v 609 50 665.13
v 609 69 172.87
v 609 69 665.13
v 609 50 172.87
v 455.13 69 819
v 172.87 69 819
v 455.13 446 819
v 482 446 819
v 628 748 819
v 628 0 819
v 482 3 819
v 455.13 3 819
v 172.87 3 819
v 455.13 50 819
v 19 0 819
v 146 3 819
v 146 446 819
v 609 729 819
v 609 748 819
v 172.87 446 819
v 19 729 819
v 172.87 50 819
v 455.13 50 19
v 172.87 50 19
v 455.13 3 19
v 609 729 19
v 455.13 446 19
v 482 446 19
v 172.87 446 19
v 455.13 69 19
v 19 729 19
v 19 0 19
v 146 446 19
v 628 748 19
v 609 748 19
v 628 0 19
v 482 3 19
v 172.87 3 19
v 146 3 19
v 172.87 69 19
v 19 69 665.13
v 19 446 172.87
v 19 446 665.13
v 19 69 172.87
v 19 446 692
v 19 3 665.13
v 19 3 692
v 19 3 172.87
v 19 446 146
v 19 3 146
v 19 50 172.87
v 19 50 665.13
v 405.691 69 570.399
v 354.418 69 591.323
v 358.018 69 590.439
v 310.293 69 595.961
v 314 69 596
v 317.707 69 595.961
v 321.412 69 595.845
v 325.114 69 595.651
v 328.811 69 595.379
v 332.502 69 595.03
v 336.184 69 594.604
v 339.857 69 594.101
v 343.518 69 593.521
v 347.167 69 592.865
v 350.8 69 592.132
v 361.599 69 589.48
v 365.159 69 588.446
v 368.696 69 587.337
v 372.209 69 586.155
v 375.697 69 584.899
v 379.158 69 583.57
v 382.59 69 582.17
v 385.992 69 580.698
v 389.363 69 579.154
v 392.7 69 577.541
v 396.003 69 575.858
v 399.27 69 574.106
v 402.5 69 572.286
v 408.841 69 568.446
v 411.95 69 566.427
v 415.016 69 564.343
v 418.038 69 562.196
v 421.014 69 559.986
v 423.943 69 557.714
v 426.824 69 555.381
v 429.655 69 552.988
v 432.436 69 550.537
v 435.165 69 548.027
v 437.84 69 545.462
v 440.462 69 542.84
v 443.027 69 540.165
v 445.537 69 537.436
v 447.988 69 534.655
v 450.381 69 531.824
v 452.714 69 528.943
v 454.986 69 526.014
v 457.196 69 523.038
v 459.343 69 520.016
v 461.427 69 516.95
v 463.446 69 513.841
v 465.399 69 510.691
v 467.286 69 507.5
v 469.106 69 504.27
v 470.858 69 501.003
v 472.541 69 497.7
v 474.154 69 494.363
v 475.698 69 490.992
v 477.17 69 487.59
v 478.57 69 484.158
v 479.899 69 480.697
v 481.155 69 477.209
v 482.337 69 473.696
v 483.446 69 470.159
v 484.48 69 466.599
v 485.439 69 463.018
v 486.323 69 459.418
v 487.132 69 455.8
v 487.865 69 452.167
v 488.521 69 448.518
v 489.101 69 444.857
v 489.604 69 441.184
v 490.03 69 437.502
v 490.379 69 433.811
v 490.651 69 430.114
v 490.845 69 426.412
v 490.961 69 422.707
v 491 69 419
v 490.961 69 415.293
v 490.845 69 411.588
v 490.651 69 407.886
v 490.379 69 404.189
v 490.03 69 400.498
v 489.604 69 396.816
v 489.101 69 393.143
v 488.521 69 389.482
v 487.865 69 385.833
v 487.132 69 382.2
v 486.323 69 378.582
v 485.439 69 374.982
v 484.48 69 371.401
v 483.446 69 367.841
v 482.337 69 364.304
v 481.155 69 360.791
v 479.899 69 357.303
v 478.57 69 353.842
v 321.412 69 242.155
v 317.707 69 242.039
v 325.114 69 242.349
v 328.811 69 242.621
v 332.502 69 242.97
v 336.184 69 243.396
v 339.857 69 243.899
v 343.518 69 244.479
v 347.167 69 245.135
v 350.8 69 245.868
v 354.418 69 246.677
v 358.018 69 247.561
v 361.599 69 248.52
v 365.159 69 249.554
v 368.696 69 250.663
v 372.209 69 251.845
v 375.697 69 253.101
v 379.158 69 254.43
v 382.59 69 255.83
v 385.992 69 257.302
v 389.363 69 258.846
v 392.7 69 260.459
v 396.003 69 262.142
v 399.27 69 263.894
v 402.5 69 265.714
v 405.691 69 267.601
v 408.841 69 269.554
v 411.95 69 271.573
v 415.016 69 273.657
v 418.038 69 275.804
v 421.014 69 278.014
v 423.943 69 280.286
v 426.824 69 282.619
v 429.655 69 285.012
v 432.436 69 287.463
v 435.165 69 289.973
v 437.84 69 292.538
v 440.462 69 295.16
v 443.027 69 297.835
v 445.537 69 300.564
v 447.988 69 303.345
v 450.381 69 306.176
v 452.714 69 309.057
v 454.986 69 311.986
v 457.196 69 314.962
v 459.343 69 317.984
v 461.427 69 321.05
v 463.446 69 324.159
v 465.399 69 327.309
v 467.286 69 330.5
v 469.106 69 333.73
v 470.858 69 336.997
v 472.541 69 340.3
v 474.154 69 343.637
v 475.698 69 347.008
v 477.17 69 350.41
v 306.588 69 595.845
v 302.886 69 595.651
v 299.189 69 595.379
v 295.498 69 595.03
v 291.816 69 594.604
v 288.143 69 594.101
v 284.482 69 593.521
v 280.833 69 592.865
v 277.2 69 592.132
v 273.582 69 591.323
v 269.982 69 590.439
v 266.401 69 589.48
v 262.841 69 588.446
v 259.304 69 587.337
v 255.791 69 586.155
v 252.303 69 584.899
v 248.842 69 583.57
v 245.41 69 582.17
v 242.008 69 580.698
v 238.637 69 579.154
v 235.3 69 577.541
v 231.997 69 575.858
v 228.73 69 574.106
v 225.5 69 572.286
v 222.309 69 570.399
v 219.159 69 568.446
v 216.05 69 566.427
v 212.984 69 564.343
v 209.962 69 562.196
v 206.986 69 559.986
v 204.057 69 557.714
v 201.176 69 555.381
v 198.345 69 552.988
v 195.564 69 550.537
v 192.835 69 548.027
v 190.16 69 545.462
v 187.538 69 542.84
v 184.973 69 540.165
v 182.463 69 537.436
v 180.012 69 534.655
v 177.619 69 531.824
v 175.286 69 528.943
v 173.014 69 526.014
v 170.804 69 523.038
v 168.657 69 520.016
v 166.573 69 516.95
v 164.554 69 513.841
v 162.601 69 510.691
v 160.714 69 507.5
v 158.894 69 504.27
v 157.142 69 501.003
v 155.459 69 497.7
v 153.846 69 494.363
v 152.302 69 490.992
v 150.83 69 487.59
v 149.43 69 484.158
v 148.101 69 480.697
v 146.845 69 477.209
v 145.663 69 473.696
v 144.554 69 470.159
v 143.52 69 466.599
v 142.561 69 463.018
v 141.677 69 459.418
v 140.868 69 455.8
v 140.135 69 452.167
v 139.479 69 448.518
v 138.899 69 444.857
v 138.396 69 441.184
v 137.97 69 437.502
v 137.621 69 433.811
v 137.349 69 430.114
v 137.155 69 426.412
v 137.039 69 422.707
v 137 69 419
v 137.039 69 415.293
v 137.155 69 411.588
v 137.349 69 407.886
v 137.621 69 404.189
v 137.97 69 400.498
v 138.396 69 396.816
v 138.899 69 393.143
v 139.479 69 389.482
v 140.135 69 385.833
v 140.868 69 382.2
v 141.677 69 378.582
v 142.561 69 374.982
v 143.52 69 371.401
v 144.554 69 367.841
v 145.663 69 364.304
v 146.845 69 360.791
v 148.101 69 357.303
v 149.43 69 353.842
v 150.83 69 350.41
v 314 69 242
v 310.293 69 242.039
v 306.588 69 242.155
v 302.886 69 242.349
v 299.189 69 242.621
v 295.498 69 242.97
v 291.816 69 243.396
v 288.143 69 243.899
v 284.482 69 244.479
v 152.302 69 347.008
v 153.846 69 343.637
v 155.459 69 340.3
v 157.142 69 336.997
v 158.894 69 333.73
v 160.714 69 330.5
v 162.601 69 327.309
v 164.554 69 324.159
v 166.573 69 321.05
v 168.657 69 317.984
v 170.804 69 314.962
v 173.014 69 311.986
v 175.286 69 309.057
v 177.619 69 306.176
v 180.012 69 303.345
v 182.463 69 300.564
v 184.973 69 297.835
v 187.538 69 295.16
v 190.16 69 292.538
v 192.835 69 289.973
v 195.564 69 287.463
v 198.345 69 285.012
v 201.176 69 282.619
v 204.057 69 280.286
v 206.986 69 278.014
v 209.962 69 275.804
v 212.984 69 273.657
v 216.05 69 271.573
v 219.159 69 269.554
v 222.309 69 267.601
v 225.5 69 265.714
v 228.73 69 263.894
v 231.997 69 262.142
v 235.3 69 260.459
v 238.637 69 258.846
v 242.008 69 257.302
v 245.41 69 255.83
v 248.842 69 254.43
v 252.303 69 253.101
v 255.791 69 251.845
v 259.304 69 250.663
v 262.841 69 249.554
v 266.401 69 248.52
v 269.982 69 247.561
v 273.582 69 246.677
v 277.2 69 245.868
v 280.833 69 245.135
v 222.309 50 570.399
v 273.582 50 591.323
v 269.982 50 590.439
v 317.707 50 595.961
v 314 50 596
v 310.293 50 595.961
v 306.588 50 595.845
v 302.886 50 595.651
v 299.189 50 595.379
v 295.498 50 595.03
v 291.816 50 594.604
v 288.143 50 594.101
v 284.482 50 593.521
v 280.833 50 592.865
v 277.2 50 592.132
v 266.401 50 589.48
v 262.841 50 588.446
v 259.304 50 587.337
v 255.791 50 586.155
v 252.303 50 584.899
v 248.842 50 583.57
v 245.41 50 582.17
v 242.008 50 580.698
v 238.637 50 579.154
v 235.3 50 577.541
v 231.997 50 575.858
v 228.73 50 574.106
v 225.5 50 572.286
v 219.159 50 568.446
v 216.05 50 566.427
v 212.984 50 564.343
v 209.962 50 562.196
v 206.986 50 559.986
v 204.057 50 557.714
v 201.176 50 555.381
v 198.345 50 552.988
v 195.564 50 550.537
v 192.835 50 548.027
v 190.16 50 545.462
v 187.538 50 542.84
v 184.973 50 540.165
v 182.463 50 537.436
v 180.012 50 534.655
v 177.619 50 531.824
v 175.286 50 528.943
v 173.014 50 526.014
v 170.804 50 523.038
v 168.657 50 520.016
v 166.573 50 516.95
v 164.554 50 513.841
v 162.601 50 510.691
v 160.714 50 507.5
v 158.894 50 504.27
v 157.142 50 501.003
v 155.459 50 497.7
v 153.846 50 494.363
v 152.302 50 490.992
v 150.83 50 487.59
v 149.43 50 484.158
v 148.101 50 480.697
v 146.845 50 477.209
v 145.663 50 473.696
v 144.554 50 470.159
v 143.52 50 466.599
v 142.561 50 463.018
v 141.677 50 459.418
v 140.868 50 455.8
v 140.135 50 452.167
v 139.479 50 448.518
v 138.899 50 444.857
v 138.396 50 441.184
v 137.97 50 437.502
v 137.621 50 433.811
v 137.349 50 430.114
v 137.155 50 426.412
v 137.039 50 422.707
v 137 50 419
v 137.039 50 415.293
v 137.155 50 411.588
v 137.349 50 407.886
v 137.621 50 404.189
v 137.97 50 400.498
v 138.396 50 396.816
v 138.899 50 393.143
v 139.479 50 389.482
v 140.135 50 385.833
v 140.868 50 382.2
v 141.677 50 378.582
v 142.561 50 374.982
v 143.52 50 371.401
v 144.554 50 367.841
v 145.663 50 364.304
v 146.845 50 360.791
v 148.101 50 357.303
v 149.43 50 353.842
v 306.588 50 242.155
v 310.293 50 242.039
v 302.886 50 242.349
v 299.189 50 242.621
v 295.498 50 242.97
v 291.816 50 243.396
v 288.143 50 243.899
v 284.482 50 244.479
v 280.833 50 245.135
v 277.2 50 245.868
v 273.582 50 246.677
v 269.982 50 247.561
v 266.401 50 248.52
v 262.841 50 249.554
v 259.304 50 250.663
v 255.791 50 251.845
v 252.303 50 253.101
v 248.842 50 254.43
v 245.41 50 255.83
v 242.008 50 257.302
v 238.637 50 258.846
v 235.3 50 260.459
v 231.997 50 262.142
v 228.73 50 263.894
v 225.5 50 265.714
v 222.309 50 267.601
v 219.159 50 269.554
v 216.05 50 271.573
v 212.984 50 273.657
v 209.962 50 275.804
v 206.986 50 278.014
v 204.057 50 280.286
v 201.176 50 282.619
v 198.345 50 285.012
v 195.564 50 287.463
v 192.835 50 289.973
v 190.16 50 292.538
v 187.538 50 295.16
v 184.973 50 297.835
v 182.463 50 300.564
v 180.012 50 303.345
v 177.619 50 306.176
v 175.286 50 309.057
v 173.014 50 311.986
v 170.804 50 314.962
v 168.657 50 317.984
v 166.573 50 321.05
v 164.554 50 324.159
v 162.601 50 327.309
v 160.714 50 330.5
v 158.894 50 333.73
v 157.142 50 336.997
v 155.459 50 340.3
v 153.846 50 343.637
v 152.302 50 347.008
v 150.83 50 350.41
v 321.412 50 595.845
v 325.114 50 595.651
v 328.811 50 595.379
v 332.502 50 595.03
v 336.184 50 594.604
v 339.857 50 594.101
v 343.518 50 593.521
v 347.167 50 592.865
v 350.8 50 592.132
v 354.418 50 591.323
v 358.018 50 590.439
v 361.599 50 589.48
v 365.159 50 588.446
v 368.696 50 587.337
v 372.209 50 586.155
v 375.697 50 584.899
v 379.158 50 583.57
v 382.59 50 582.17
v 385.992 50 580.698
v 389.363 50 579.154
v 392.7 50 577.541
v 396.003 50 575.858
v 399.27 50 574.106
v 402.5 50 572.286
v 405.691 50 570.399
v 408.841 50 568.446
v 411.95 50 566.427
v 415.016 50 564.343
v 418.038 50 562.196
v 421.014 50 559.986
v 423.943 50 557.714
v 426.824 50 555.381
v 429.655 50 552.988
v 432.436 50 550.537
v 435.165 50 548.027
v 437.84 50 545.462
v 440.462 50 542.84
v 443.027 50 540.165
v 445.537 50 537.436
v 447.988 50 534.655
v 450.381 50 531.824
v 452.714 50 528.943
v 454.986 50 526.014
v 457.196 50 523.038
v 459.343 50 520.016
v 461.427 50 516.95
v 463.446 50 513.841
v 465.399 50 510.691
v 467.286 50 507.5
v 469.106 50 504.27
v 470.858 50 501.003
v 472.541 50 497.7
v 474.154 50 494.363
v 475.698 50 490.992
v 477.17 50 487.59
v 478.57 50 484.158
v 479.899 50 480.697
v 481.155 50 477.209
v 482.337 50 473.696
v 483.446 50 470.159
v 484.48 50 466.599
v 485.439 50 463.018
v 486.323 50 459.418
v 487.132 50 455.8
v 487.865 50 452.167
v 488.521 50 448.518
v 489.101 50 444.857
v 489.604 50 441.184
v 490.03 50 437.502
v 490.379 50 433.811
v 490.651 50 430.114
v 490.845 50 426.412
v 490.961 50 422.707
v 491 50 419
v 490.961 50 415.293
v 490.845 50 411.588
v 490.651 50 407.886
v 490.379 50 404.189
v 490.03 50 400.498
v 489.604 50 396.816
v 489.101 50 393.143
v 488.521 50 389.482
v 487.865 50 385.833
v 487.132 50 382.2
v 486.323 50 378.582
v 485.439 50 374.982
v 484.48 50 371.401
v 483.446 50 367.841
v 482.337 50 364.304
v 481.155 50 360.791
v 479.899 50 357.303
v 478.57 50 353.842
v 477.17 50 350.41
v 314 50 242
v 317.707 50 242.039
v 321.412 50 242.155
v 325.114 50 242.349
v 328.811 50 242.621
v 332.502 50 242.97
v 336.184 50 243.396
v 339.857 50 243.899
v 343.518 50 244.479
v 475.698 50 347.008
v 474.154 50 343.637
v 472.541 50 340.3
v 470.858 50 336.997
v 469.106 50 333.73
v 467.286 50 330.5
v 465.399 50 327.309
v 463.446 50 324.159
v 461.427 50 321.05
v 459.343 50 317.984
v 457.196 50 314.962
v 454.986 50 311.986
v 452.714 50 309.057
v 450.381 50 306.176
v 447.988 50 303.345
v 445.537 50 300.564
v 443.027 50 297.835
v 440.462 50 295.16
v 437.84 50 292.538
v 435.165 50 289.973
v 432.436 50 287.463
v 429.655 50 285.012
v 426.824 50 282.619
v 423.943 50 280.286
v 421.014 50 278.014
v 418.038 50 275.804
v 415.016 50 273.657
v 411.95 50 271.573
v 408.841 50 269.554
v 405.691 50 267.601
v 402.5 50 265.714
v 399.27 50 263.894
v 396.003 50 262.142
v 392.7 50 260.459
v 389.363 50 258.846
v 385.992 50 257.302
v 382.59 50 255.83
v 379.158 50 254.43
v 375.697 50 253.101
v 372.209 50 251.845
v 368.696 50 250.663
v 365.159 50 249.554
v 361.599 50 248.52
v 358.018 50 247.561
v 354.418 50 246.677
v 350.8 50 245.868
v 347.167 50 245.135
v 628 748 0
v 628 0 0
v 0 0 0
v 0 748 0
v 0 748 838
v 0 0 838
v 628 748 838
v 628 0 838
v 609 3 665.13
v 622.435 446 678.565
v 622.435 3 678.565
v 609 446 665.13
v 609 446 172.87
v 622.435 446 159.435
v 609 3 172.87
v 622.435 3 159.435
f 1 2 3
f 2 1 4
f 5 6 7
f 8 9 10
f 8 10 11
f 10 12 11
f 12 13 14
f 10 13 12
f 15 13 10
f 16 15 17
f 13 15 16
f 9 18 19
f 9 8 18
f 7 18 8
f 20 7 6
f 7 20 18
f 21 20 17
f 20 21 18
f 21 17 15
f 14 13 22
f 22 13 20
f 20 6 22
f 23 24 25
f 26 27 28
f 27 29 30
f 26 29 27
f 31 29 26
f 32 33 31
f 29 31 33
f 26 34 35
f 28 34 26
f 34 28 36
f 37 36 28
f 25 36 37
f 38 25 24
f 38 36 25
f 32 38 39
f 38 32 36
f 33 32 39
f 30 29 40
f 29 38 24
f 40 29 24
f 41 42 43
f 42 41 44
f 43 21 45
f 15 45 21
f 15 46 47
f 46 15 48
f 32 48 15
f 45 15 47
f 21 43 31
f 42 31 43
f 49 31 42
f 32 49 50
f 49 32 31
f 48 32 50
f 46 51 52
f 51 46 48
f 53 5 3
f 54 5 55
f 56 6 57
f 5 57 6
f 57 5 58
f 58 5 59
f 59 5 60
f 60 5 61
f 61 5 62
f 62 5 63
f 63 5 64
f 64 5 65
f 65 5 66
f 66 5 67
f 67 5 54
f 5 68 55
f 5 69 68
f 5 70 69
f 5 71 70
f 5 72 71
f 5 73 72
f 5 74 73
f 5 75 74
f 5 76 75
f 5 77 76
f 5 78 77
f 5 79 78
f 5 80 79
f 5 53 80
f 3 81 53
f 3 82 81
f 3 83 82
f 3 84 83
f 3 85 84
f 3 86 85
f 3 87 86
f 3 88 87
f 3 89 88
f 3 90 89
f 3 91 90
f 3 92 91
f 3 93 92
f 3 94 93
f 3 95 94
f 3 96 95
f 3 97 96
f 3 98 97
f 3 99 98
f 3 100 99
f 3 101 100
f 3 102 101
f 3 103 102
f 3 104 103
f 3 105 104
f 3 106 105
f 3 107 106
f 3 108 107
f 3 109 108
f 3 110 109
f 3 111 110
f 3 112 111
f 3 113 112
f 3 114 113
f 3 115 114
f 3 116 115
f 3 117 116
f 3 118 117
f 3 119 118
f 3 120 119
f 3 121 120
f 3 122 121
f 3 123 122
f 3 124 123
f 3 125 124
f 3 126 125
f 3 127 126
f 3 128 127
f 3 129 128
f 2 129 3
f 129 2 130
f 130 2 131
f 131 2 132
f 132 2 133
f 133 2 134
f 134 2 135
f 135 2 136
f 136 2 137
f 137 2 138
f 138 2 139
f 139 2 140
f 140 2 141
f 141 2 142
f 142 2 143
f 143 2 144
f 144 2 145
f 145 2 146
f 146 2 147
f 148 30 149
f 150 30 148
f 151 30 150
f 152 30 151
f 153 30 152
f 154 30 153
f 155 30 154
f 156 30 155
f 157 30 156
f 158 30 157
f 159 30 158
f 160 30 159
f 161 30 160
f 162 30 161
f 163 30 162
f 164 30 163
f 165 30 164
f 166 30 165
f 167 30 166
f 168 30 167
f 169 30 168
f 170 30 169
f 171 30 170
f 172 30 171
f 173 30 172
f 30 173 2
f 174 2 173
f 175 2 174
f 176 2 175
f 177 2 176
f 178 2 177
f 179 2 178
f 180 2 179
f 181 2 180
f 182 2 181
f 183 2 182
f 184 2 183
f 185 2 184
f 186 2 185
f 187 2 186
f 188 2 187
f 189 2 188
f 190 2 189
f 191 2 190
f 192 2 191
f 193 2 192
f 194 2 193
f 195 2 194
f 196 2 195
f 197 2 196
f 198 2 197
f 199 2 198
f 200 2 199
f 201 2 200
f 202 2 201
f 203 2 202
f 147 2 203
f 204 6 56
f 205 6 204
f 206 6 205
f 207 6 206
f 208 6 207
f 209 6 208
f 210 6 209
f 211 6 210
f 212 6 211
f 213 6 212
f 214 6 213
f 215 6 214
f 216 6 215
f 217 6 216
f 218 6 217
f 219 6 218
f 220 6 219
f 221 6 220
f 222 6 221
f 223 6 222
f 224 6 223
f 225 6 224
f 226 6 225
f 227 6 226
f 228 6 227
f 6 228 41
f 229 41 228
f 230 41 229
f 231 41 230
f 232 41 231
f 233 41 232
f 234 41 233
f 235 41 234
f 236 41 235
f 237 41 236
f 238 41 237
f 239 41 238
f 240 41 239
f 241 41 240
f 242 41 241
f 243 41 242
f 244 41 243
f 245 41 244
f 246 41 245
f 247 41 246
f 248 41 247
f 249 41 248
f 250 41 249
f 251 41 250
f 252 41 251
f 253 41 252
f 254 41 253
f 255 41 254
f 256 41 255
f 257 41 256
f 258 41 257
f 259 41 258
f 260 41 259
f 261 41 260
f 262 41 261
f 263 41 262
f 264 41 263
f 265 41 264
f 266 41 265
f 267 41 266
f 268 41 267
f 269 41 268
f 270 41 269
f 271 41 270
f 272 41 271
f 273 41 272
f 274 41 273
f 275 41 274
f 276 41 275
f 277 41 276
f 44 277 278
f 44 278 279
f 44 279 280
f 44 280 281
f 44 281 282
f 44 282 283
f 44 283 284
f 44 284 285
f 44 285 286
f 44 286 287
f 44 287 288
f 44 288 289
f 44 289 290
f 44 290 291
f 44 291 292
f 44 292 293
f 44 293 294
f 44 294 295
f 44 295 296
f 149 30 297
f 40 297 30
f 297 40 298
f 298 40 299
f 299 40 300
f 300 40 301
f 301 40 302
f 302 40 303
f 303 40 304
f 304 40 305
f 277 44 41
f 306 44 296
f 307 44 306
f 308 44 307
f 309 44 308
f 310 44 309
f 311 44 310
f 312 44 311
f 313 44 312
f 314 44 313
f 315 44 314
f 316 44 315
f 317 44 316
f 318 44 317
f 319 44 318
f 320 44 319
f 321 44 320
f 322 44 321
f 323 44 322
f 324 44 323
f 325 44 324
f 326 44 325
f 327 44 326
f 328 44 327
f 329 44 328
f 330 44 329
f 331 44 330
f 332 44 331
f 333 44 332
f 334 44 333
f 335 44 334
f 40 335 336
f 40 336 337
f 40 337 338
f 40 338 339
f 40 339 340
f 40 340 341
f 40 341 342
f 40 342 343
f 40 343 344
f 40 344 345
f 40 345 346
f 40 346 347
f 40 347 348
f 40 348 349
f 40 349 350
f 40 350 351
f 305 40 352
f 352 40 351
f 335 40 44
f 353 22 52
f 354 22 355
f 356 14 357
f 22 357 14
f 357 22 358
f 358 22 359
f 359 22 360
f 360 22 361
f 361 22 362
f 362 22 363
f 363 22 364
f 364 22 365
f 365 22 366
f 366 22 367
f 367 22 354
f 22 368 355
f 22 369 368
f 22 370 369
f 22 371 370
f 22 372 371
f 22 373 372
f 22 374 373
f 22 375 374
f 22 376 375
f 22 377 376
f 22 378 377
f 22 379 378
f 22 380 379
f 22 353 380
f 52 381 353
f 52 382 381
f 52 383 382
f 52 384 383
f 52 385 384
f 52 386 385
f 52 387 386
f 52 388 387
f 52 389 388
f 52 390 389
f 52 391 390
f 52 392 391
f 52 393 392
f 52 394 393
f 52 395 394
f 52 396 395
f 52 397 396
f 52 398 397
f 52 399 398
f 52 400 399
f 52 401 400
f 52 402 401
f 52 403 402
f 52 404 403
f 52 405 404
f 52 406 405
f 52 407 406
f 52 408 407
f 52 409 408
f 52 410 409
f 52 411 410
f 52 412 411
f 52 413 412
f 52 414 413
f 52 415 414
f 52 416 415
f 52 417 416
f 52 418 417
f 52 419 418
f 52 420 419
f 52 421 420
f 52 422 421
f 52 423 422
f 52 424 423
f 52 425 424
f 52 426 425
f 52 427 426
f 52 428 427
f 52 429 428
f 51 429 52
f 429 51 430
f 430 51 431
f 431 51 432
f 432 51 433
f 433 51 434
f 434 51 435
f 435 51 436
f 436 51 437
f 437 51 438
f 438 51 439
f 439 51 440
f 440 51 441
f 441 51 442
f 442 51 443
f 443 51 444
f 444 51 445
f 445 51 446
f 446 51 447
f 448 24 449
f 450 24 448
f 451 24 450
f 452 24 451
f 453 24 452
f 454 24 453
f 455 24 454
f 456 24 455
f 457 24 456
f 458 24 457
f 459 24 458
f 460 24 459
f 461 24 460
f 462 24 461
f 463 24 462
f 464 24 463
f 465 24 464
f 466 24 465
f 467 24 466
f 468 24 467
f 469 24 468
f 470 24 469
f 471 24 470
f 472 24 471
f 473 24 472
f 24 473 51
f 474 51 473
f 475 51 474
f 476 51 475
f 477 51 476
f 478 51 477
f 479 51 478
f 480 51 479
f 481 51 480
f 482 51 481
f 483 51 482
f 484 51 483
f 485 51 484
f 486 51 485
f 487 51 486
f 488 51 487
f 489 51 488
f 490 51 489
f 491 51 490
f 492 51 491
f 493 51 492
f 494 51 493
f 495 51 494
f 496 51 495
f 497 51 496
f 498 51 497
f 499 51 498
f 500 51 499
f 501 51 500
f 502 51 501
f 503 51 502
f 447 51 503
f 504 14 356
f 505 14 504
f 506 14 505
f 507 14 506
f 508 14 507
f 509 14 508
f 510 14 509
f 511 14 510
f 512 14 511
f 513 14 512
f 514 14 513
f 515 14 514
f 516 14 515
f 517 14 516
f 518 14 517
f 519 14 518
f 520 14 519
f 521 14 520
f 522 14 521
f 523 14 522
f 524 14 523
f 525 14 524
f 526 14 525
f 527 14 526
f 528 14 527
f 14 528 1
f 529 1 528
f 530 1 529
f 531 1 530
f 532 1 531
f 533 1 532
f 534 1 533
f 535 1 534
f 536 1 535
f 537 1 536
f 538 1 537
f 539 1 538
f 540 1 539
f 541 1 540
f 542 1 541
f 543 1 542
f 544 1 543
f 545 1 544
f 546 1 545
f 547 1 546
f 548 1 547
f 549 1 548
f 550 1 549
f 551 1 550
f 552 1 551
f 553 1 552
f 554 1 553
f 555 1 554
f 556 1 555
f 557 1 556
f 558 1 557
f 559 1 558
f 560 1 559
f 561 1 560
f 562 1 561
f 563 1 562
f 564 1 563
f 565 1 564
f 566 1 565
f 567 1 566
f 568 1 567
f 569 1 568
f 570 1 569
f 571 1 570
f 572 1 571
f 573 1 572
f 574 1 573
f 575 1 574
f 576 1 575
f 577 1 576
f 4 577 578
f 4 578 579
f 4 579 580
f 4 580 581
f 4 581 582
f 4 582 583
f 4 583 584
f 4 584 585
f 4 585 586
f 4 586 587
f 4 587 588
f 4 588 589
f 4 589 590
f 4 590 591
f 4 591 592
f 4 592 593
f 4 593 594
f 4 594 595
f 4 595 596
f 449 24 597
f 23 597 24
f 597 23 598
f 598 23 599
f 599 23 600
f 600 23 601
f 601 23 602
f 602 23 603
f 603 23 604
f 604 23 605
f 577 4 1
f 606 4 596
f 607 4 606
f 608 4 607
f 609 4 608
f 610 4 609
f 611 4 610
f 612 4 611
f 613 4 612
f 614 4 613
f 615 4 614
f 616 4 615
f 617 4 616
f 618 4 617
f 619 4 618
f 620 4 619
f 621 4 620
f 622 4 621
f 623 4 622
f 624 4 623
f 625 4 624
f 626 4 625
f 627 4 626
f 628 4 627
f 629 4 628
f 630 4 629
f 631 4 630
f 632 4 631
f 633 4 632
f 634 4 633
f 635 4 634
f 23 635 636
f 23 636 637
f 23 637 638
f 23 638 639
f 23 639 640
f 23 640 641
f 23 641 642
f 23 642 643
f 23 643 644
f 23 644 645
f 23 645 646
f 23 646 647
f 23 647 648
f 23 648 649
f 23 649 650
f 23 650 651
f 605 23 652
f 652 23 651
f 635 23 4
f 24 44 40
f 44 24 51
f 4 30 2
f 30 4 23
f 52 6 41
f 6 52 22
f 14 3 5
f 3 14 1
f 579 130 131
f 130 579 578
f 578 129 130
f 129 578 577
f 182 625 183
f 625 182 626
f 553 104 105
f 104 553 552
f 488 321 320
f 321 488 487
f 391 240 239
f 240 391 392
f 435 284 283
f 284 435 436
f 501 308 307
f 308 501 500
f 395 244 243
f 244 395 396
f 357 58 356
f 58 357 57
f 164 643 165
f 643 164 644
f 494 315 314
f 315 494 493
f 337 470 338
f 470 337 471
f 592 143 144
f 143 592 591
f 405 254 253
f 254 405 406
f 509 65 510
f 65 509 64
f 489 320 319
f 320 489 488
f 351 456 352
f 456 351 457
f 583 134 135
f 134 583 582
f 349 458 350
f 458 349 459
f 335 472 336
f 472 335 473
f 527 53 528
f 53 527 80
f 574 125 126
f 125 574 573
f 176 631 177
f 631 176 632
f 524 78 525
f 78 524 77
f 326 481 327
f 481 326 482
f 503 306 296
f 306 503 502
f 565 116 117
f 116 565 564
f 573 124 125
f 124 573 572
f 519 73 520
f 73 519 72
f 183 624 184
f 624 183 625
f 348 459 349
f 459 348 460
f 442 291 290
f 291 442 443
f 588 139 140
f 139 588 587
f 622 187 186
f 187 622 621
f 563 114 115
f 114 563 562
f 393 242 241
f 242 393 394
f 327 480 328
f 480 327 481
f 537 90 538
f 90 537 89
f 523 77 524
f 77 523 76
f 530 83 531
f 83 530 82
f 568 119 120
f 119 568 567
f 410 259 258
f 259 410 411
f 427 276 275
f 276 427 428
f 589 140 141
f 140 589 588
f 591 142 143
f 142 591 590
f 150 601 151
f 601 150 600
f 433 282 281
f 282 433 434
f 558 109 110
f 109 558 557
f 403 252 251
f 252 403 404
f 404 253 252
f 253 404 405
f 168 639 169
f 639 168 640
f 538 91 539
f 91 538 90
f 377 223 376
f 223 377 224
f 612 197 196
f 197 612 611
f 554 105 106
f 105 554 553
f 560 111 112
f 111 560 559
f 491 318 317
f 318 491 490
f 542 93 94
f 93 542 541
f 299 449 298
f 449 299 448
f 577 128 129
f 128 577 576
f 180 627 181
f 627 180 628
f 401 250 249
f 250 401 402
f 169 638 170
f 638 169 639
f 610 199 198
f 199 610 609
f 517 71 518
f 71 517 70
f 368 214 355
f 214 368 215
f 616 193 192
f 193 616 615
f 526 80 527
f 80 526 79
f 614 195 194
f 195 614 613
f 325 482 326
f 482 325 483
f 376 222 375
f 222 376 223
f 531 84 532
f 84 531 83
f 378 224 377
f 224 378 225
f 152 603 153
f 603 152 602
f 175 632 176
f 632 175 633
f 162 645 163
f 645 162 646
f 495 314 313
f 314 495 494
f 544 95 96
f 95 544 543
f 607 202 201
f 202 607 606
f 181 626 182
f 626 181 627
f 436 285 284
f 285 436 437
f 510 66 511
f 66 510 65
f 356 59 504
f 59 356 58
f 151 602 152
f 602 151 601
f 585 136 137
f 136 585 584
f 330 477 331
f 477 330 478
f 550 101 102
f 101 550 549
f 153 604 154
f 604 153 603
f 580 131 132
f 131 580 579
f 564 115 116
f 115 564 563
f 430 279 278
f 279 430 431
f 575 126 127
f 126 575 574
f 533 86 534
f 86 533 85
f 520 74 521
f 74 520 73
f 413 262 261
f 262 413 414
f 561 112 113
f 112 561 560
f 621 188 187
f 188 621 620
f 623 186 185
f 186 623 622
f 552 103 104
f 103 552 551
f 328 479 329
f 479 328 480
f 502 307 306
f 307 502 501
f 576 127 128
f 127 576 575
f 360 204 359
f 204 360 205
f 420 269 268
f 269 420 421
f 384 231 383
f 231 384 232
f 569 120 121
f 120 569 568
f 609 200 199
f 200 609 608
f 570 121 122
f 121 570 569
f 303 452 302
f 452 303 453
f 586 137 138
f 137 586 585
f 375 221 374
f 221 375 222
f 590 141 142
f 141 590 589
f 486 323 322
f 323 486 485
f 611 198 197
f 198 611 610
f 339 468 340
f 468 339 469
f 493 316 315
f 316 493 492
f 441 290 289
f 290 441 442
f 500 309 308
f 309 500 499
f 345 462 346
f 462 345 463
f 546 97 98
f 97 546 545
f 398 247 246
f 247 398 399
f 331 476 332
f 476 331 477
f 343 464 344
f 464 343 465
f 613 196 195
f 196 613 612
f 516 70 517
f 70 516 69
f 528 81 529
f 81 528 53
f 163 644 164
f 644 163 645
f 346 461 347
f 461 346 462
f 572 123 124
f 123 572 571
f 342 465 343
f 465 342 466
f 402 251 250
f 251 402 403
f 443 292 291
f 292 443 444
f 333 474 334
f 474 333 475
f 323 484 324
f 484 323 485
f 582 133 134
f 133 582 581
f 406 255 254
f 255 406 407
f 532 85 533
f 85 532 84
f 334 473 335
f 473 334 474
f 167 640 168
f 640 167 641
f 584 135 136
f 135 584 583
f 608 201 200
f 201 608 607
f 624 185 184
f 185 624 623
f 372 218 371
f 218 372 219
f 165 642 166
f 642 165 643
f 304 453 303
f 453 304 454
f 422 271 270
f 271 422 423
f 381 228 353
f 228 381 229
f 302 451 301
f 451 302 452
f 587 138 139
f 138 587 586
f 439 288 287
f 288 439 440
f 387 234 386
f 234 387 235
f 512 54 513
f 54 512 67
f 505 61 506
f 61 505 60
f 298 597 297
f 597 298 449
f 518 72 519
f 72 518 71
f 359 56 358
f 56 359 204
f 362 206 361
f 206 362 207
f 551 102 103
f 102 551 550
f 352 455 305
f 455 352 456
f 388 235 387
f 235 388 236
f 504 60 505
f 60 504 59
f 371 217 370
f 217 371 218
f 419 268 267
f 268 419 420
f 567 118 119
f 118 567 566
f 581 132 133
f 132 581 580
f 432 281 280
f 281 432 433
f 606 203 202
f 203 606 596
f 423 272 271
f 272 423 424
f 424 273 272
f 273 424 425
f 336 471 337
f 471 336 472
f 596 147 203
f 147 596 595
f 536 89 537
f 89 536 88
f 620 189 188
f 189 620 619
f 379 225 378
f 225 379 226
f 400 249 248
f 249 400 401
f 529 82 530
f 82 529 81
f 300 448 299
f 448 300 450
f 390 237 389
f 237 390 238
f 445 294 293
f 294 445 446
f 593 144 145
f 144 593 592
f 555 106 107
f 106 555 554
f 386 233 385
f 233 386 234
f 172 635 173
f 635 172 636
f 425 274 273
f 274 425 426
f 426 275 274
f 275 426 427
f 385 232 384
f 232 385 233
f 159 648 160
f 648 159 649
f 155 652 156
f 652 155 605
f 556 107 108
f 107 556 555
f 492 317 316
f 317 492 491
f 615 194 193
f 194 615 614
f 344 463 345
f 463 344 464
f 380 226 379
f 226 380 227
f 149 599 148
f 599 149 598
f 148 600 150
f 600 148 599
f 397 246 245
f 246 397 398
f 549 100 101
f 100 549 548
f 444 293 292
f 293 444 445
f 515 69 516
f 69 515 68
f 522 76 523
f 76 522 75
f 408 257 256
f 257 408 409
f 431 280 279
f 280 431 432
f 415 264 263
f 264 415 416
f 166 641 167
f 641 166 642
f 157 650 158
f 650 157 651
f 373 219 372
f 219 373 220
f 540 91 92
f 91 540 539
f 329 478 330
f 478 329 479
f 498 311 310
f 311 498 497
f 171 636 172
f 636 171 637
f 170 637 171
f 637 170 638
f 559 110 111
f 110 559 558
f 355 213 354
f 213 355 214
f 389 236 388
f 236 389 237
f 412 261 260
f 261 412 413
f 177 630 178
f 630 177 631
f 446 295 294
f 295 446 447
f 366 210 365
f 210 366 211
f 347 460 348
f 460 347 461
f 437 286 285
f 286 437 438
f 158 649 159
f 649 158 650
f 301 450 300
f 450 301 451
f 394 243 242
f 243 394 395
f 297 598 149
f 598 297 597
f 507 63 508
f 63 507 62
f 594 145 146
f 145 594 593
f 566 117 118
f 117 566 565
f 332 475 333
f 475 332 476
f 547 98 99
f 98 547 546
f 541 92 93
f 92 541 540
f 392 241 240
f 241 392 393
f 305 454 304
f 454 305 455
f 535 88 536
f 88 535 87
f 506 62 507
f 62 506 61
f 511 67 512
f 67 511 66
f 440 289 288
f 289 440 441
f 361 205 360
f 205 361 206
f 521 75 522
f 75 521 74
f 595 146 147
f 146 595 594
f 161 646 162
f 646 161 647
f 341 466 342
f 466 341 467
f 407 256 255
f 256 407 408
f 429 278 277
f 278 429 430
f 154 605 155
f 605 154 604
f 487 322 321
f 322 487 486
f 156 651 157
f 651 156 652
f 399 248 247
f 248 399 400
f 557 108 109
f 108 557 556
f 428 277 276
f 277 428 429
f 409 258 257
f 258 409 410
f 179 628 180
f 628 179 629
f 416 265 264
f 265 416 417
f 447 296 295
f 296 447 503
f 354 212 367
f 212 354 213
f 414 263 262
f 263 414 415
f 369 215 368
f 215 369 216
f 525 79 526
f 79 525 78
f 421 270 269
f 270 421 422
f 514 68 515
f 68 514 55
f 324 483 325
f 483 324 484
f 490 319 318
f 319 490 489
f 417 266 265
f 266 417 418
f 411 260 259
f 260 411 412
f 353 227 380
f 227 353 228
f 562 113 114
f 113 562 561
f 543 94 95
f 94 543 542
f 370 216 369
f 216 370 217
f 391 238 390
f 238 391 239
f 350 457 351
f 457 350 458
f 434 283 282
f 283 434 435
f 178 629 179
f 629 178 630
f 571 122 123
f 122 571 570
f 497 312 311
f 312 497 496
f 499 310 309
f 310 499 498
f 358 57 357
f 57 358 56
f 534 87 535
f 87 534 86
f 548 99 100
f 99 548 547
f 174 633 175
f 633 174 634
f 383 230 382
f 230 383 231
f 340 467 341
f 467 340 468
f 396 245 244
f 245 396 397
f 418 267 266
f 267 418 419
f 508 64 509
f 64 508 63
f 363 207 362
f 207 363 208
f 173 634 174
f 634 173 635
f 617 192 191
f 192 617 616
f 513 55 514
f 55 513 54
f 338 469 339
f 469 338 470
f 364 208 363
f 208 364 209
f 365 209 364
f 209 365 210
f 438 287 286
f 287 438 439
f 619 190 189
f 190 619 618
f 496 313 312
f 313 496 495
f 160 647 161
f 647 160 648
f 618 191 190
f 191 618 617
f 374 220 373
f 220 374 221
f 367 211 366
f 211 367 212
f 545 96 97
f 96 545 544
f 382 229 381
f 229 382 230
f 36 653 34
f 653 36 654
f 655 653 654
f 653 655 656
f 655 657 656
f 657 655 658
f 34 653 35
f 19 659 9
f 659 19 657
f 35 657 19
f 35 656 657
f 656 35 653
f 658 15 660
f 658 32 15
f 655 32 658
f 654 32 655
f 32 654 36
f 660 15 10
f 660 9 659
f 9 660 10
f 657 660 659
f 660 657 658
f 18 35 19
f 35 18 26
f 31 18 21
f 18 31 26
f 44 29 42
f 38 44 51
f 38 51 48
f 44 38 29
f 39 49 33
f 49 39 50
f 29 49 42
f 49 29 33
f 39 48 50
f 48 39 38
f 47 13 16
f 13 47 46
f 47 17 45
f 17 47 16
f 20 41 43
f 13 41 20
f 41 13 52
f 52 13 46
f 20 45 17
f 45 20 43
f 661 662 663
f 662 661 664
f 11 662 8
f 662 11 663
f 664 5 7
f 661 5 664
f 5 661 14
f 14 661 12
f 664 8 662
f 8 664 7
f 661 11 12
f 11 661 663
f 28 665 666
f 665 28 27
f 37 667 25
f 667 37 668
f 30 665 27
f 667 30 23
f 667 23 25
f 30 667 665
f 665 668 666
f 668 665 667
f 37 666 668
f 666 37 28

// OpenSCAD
// Basic vented box for Dayton Ultimax 15" subwoofer
// Modelled in WinISD

// Volume 300L (not including ports, speaker, stuffing
// Tuning 25Hz
// 4 ports triangle shaped
// Triangle port area equivalent to 9cm x 9cm square ports

// Max cone excursion at 600W happens at 20Hz
// Set highpass filter higher than 20Hz

iw = 590;
id = 710;
ih = 800;
t = 19;
front_setback = 50;


// each triangle port area is equivalent to 90x90mm square port
pl = 443; // port length
pis = 127; // port inner side length
pid = sqrt(pis*pis*2); // port inner diagonal length
echo(str("Port panels short width: ", pl, " x ", pid));
pos = pis+sqrt(t*t*2); // port outer side length
pod = sqrt(pos*pos*2); // port outer diagonal length
echo(str("Port panels long width: ", pl, " x ", pod));

// subwoofer details
// dayton ultimax 15 UMII15-22
// see spec sheet at https://www.daytonaudio.com/images/resources/295-714--dayton-audio-UMII15-22-spec-sheet.pdf
// and general info at
// https://www.daytonaudio.com/product/2065/umii15-22-ultimax-ii-15-dvc-subwoofer-2-ohms-per-coil

subd = 354;

// base
translate([0, 0, 0]) {
    w = t + iw + t;
    d = t + id + t;
    cube([w, d, t]);
    echo(str("Bottom: ", d, " x ", w));
}

// top
translate([0, 0, t+ih]) {
    w = t + iw + t;
    d = t + id + t;
    cube([w, d, t]);
    echo(str("Bottom: ", d, " x ", w));
}

// side
translate([0, 0, t]) {
    d = t + id + t;
    h = ih;
    color("blue") cube([t, d, h]);
    echo(str("Side: ", h, " x ", d));
}

// side
translate([t+iw, 0, t]) {
    d = t + id + t;
    h = ih;
    //color("blue") cube([t, d, h]);
    echo(str("Side: ", h, " x ", d));
}

// front
translate([t, front_setback, t]) {
    w = iw;
    h = ih;
    difference() {
        color("red") cube([w, t, h]);
        echo(str("Front: ", h, " x ", w));
        // port cutouts
        // bottom left
        translate([0, -1, pos]) {
            rotate([0, 90+45, 0]) {
                cube([1000, t+2, 1000]);
            }
        }
        // bottom right
        translate([iw-pos, -1, 0]) {
            rotate([0, 45, 0]) {
                cube([1000, t+2, 1000]);
            }
        }
        // top left
        translate([0, -1, ih-pos]) {
            rotate([0, -45, 0]) {
                cube([1000, t+2, 1000]);
            }
        }
        // top right
        translate([iw-pos, -1, ih]) {
            rotate([0, 45, 0]) {
                cube([1000, t+2, 1000]);
            }
        }
        // sub hole
        translate([iw/2, -1, ih/2]) {
            rotate([270, 0, 0]) {
                // cutout diameter 353mm +- 0.5
                cylinder(d=subd, h=t+2, $fn=300);
                echo(str("Sub cutout diameter: ", subd));
            }
        }
    }
}

// back
translate([t, t+id, t]) {
    w = iw;
    h = ih;
    color("green") cube([w, t, h]);
    echo(str("Back: ", h, " x ", w));
}



// ports
port_yoffset = 3;
// bottom left
translate([t-sqrt((t*t)/2), port_yoffset, t+pos-sqrt((t*t)/2)]) {
    rotate([0, 45, 0]) {
        color("magenta") cube([pod, pl, t]);
    }
}
// bottom right
translate([t, port_yoffset, t+ih-pos]) {
    rotate([0, -45, 0]) {
        color("magenta") cube([pod, pl, t]);
    }
}

// top right
translate([t+iw-pos, port_yoffset, t+ih]) {
    rotate([0, 45, 0]) {
        color("magenta") cube([pod, pl, t]);
    }
}

// bottom right
translate([t+iw-pos+sqrt((t*t)/2), port_yoffset, t-sqrt((t*t)/2)]) {
    rotate([0, -45, 0]) {
        color("magenta") cube([pod, pl, t]);
    }
}

// volume
subv = 5; // litres, as a guess
portv = pos*pos/2 * (pl-t-front_setback) / 1000000;
boxv = iw * (id-front_setback) * ih / 1000000;
v = boxv - subv - portv;
echo(str("Box volume: ", v, " litres"));
